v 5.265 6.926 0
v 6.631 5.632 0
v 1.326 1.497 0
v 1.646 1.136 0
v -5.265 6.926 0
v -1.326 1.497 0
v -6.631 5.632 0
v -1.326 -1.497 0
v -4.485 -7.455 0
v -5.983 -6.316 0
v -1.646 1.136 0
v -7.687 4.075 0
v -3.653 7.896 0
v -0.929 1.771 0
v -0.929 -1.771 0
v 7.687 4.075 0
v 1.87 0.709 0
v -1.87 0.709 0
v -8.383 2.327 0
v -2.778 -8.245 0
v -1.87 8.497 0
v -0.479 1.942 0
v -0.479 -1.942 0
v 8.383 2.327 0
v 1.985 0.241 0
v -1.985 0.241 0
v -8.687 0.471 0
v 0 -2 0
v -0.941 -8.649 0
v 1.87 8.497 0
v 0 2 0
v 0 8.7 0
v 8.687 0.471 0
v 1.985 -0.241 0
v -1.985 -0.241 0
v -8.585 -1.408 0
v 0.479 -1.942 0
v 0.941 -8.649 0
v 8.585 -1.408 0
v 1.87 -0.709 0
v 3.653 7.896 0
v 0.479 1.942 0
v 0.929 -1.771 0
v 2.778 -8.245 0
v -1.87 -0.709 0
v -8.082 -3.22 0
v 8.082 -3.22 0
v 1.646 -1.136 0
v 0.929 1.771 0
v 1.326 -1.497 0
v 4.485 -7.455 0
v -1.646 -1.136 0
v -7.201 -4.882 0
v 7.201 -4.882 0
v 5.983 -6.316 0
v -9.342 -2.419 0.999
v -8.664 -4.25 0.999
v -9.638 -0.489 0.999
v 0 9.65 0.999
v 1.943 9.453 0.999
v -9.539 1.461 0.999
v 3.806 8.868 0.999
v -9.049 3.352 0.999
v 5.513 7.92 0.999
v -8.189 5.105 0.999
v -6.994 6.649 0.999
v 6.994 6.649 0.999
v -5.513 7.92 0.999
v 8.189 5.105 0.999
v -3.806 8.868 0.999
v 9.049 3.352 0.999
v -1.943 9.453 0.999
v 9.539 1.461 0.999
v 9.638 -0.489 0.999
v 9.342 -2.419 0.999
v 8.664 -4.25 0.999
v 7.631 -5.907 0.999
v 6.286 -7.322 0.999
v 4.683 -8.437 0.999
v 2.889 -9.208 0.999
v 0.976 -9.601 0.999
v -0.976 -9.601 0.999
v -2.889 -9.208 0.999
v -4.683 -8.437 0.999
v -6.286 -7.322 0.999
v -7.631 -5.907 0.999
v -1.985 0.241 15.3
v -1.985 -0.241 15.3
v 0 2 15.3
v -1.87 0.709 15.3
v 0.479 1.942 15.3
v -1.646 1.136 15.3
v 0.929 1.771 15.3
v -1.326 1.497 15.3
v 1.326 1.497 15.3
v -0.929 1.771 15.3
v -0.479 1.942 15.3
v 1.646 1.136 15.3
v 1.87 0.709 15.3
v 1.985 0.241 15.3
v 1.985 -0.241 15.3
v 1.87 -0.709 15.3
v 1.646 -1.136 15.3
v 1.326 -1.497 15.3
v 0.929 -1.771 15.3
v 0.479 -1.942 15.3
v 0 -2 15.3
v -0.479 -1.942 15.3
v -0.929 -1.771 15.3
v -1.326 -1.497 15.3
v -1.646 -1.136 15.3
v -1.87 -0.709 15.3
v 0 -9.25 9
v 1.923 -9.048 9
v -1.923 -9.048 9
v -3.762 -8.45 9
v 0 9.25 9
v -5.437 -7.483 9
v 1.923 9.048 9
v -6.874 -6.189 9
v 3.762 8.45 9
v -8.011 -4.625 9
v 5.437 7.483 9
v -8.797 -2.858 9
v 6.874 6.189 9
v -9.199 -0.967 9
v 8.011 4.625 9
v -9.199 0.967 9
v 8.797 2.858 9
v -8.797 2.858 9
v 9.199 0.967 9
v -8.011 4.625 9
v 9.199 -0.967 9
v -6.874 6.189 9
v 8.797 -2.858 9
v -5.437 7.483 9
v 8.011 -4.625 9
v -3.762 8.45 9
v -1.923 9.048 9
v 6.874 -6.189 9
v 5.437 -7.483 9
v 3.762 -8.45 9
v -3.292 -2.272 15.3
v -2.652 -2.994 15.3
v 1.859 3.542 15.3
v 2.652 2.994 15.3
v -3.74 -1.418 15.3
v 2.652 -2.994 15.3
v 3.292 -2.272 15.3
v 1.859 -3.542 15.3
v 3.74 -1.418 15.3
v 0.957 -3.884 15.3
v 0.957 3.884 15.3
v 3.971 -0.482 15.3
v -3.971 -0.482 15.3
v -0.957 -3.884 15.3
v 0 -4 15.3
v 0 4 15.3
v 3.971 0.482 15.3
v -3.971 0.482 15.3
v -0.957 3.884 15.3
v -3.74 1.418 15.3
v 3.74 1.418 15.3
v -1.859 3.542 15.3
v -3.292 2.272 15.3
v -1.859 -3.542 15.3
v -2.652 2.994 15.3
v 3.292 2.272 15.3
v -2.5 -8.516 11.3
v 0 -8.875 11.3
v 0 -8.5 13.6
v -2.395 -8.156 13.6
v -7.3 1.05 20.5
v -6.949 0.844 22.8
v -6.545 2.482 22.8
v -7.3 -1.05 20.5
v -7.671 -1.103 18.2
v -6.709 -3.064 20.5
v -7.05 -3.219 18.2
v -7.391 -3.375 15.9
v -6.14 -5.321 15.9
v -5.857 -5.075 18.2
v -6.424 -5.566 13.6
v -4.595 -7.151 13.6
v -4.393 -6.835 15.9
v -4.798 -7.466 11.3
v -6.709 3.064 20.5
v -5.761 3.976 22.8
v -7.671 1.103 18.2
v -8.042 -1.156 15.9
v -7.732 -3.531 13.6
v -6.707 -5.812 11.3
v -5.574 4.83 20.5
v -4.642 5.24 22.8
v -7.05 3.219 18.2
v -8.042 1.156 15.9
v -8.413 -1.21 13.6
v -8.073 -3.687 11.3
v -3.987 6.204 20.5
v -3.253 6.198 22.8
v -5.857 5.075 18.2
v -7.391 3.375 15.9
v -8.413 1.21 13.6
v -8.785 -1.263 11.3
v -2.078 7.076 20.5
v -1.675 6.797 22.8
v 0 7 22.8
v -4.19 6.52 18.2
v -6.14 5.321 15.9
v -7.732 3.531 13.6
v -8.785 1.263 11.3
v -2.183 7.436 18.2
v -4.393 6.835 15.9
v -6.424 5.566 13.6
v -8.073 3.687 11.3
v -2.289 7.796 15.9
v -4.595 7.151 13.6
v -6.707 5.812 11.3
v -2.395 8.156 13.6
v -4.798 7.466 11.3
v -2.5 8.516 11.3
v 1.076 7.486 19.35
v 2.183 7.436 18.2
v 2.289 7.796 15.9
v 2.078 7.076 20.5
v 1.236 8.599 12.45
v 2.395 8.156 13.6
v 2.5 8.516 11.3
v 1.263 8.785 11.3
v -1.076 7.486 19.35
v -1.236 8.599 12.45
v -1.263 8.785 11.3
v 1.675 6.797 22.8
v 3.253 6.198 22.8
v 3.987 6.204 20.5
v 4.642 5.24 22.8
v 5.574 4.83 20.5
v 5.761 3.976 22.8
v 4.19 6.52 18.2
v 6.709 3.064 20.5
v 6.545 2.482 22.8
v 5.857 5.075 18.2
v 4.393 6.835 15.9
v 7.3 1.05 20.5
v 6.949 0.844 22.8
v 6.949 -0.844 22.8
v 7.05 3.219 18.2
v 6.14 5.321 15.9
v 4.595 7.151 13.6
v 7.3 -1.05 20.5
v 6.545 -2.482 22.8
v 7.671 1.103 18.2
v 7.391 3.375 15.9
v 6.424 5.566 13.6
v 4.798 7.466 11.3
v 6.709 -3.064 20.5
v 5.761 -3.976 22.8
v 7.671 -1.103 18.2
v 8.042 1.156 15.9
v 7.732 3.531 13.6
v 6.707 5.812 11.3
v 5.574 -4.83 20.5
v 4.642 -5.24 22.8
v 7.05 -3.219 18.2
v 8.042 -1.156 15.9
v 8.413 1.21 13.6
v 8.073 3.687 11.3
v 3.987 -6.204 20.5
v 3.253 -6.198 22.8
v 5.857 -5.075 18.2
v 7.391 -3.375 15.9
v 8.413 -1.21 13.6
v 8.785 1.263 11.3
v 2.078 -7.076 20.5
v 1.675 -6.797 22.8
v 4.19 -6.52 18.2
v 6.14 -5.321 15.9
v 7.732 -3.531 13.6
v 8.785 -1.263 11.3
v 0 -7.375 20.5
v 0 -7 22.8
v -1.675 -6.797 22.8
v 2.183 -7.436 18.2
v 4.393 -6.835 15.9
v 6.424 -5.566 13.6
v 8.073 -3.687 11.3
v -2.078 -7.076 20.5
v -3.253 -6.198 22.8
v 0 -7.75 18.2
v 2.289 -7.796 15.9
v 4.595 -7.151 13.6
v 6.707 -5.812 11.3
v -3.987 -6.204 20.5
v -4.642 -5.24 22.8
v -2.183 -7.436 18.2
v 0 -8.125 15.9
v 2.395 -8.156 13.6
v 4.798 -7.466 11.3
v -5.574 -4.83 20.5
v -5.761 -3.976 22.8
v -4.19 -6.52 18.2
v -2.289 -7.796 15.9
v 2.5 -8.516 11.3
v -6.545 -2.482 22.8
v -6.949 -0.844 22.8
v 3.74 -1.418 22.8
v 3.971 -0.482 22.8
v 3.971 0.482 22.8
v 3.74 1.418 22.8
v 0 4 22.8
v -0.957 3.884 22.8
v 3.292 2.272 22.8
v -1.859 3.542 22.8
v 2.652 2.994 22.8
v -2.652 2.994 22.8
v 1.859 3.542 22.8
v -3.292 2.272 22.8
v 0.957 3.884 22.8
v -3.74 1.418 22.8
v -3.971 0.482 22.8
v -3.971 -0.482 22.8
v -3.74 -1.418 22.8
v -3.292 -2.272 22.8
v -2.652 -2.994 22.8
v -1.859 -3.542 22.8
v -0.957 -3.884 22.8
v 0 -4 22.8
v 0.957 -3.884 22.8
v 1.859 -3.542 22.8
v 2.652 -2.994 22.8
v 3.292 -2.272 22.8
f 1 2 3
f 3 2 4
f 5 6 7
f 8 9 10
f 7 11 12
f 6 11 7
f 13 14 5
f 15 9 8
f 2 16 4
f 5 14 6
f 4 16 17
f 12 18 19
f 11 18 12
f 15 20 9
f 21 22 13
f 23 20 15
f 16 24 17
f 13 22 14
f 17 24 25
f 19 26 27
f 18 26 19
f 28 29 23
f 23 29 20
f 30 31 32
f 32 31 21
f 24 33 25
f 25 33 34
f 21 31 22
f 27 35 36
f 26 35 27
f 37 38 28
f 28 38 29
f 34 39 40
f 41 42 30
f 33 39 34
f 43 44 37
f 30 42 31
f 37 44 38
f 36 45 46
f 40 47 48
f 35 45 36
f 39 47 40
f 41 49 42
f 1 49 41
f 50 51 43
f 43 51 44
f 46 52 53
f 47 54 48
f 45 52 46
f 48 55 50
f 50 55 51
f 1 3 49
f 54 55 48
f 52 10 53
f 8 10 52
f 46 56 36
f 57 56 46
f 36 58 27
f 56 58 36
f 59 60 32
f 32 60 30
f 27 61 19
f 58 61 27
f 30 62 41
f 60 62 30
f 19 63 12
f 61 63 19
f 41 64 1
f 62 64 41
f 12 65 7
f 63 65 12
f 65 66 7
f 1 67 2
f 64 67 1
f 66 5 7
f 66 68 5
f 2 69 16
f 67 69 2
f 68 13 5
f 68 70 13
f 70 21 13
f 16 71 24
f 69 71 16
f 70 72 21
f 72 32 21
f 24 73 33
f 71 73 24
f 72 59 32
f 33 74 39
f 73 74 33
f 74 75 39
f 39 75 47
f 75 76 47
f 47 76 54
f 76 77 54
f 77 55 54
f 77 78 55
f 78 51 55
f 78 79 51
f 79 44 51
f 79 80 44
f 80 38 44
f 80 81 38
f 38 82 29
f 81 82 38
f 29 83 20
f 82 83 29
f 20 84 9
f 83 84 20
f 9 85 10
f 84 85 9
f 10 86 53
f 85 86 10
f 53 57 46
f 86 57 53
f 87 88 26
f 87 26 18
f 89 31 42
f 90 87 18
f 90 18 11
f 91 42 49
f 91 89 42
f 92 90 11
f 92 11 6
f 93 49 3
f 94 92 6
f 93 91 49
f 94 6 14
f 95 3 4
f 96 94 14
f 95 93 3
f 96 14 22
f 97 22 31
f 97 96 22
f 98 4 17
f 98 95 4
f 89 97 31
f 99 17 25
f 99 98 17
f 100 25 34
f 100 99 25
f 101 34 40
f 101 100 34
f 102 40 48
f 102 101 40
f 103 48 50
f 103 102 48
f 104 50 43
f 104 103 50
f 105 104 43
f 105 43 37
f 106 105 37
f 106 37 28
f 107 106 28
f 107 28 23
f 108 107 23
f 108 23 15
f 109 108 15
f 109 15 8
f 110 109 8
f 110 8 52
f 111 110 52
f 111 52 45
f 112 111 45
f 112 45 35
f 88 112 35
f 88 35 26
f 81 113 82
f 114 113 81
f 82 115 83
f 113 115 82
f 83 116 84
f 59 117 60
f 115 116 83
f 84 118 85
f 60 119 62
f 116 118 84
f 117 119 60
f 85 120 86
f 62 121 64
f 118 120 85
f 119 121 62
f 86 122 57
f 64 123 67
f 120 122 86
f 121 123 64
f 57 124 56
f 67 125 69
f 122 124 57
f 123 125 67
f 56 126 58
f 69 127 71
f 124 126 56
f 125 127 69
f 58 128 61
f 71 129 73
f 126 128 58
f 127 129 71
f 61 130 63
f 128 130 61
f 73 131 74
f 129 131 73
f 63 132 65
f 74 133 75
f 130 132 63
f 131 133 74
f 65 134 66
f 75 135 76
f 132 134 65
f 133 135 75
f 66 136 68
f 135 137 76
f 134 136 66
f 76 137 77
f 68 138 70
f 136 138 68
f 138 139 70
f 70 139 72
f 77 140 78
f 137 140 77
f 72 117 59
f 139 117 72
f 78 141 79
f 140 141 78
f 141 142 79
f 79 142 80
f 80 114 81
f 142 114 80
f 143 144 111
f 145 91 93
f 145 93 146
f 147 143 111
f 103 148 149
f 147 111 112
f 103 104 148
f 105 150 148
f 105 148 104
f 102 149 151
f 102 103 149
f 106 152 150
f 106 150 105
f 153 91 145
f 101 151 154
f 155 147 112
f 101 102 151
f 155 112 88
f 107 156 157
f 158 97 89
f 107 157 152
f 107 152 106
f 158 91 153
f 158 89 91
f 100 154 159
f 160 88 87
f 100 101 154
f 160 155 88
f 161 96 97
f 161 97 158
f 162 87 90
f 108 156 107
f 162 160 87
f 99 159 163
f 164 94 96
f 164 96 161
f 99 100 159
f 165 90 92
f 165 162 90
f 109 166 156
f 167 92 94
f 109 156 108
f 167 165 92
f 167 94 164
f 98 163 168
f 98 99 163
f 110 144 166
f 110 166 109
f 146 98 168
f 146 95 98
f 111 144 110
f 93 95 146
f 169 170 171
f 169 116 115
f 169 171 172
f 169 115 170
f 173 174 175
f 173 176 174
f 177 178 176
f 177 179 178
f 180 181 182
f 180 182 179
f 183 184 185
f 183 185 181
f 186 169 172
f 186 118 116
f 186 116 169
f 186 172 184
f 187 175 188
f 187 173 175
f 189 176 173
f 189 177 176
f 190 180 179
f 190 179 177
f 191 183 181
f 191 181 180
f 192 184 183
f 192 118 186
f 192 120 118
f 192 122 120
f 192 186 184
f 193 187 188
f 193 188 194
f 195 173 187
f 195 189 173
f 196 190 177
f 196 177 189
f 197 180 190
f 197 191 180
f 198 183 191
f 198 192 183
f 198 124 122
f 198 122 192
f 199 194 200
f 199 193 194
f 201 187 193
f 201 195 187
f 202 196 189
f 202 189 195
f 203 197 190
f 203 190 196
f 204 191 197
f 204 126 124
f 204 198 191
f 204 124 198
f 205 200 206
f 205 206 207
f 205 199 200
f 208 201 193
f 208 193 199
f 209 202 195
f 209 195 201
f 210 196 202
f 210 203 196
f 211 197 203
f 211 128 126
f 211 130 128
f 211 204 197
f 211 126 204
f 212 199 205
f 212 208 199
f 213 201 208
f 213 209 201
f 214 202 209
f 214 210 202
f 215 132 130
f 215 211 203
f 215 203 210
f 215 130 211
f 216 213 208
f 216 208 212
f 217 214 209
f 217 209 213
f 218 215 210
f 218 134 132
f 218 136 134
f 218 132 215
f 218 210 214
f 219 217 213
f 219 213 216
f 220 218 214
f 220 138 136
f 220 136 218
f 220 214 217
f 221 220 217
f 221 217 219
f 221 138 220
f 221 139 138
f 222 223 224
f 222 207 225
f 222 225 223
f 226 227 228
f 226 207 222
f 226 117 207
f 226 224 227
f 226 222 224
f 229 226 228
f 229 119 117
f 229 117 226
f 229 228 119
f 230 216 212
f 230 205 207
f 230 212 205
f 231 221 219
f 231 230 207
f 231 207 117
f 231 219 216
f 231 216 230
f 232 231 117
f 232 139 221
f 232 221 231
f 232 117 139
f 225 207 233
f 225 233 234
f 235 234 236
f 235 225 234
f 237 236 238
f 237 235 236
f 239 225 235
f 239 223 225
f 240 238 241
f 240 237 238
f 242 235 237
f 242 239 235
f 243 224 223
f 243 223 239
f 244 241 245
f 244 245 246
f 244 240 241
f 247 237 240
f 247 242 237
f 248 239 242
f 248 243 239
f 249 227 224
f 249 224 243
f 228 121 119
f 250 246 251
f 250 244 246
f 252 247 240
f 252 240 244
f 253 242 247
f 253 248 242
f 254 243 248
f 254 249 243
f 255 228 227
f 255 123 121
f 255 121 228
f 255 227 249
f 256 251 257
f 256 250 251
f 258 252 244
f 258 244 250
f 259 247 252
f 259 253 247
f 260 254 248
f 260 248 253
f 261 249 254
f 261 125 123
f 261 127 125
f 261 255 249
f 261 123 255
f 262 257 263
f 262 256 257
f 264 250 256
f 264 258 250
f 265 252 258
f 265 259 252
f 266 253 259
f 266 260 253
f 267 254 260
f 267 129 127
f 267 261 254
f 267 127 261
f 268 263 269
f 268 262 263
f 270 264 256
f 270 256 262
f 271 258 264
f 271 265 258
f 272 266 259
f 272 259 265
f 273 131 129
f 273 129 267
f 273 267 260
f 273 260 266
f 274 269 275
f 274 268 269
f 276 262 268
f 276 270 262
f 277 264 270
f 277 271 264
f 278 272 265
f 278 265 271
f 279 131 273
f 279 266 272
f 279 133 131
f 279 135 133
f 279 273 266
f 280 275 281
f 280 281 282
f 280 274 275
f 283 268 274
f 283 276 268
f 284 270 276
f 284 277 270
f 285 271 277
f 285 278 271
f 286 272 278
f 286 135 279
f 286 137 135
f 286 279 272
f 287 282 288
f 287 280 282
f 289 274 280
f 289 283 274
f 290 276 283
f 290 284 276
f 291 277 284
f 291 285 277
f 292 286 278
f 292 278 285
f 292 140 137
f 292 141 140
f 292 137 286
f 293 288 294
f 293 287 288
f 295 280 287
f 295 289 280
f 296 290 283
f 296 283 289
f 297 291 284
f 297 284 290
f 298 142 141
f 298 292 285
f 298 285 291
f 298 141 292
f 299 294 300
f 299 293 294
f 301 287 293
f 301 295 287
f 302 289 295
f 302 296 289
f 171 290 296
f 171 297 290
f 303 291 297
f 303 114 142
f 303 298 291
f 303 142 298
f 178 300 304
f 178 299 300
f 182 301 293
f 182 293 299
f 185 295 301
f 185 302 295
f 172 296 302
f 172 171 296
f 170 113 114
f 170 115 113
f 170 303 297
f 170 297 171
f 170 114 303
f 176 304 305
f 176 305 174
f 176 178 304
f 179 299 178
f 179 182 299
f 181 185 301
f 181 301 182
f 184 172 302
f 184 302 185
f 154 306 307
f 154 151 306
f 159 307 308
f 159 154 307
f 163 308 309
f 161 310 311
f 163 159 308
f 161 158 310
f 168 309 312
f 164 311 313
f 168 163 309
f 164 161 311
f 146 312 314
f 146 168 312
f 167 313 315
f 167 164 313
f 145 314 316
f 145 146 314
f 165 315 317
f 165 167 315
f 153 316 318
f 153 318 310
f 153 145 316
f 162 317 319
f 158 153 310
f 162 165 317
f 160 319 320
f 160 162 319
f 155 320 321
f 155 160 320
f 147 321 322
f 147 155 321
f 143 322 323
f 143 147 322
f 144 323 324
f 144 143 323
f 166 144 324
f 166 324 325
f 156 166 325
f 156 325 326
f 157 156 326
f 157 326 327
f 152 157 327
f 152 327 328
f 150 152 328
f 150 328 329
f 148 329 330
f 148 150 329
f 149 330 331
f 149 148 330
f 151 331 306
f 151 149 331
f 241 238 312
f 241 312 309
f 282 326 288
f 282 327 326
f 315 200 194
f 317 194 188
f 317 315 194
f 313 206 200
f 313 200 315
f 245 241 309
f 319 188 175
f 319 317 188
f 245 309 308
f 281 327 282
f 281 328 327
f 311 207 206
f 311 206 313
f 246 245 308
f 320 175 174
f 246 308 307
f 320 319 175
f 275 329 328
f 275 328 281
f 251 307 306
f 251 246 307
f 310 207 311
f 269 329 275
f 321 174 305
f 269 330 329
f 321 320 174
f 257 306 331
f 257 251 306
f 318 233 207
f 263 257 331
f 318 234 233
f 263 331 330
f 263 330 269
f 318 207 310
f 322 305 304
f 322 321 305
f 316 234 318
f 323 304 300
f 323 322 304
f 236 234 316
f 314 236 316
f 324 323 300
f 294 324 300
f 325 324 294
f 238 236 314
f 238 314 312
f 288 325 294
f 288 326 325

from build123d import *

# Parameters (mm, degrees)
SKETCH001_R  = 4
HOLE_DEPTH   = 7.5
CHAMFER_SIZE = 1


with BuildPart() as part:
    # Sketch → Revolution (revolve)
    with BuildSketch(Plane.YZ):
        Polygon((2, 0), (9.7, 0), (9.25, 9), (7, 22.8), (2, 22.8), align=None)
    revolve(axis=Axis((0, 0, 0), (0, 0, 1)))

    # Sketch001 (on Face4 of Revolution) → Hole (cut)
    with BuildSketch(Plane(origin=(0, 0, 22.8), x_dir=(0, -1, 0), z_dir=(0, 0, 1))):
        Circle(SKETCH001_R)
    extrude(amount=-HOLE_DEPTH, mode=Mode.SUBTRACT)

    # Chamfer
    chamfer_edges = [part.edges().sort_by_distance(p)[0] for p in [
        (0, -9.7, 0),
    ]]
    chamfer(chamfer_edges, length=CHAMFER_SIZE)


solid = part.part
